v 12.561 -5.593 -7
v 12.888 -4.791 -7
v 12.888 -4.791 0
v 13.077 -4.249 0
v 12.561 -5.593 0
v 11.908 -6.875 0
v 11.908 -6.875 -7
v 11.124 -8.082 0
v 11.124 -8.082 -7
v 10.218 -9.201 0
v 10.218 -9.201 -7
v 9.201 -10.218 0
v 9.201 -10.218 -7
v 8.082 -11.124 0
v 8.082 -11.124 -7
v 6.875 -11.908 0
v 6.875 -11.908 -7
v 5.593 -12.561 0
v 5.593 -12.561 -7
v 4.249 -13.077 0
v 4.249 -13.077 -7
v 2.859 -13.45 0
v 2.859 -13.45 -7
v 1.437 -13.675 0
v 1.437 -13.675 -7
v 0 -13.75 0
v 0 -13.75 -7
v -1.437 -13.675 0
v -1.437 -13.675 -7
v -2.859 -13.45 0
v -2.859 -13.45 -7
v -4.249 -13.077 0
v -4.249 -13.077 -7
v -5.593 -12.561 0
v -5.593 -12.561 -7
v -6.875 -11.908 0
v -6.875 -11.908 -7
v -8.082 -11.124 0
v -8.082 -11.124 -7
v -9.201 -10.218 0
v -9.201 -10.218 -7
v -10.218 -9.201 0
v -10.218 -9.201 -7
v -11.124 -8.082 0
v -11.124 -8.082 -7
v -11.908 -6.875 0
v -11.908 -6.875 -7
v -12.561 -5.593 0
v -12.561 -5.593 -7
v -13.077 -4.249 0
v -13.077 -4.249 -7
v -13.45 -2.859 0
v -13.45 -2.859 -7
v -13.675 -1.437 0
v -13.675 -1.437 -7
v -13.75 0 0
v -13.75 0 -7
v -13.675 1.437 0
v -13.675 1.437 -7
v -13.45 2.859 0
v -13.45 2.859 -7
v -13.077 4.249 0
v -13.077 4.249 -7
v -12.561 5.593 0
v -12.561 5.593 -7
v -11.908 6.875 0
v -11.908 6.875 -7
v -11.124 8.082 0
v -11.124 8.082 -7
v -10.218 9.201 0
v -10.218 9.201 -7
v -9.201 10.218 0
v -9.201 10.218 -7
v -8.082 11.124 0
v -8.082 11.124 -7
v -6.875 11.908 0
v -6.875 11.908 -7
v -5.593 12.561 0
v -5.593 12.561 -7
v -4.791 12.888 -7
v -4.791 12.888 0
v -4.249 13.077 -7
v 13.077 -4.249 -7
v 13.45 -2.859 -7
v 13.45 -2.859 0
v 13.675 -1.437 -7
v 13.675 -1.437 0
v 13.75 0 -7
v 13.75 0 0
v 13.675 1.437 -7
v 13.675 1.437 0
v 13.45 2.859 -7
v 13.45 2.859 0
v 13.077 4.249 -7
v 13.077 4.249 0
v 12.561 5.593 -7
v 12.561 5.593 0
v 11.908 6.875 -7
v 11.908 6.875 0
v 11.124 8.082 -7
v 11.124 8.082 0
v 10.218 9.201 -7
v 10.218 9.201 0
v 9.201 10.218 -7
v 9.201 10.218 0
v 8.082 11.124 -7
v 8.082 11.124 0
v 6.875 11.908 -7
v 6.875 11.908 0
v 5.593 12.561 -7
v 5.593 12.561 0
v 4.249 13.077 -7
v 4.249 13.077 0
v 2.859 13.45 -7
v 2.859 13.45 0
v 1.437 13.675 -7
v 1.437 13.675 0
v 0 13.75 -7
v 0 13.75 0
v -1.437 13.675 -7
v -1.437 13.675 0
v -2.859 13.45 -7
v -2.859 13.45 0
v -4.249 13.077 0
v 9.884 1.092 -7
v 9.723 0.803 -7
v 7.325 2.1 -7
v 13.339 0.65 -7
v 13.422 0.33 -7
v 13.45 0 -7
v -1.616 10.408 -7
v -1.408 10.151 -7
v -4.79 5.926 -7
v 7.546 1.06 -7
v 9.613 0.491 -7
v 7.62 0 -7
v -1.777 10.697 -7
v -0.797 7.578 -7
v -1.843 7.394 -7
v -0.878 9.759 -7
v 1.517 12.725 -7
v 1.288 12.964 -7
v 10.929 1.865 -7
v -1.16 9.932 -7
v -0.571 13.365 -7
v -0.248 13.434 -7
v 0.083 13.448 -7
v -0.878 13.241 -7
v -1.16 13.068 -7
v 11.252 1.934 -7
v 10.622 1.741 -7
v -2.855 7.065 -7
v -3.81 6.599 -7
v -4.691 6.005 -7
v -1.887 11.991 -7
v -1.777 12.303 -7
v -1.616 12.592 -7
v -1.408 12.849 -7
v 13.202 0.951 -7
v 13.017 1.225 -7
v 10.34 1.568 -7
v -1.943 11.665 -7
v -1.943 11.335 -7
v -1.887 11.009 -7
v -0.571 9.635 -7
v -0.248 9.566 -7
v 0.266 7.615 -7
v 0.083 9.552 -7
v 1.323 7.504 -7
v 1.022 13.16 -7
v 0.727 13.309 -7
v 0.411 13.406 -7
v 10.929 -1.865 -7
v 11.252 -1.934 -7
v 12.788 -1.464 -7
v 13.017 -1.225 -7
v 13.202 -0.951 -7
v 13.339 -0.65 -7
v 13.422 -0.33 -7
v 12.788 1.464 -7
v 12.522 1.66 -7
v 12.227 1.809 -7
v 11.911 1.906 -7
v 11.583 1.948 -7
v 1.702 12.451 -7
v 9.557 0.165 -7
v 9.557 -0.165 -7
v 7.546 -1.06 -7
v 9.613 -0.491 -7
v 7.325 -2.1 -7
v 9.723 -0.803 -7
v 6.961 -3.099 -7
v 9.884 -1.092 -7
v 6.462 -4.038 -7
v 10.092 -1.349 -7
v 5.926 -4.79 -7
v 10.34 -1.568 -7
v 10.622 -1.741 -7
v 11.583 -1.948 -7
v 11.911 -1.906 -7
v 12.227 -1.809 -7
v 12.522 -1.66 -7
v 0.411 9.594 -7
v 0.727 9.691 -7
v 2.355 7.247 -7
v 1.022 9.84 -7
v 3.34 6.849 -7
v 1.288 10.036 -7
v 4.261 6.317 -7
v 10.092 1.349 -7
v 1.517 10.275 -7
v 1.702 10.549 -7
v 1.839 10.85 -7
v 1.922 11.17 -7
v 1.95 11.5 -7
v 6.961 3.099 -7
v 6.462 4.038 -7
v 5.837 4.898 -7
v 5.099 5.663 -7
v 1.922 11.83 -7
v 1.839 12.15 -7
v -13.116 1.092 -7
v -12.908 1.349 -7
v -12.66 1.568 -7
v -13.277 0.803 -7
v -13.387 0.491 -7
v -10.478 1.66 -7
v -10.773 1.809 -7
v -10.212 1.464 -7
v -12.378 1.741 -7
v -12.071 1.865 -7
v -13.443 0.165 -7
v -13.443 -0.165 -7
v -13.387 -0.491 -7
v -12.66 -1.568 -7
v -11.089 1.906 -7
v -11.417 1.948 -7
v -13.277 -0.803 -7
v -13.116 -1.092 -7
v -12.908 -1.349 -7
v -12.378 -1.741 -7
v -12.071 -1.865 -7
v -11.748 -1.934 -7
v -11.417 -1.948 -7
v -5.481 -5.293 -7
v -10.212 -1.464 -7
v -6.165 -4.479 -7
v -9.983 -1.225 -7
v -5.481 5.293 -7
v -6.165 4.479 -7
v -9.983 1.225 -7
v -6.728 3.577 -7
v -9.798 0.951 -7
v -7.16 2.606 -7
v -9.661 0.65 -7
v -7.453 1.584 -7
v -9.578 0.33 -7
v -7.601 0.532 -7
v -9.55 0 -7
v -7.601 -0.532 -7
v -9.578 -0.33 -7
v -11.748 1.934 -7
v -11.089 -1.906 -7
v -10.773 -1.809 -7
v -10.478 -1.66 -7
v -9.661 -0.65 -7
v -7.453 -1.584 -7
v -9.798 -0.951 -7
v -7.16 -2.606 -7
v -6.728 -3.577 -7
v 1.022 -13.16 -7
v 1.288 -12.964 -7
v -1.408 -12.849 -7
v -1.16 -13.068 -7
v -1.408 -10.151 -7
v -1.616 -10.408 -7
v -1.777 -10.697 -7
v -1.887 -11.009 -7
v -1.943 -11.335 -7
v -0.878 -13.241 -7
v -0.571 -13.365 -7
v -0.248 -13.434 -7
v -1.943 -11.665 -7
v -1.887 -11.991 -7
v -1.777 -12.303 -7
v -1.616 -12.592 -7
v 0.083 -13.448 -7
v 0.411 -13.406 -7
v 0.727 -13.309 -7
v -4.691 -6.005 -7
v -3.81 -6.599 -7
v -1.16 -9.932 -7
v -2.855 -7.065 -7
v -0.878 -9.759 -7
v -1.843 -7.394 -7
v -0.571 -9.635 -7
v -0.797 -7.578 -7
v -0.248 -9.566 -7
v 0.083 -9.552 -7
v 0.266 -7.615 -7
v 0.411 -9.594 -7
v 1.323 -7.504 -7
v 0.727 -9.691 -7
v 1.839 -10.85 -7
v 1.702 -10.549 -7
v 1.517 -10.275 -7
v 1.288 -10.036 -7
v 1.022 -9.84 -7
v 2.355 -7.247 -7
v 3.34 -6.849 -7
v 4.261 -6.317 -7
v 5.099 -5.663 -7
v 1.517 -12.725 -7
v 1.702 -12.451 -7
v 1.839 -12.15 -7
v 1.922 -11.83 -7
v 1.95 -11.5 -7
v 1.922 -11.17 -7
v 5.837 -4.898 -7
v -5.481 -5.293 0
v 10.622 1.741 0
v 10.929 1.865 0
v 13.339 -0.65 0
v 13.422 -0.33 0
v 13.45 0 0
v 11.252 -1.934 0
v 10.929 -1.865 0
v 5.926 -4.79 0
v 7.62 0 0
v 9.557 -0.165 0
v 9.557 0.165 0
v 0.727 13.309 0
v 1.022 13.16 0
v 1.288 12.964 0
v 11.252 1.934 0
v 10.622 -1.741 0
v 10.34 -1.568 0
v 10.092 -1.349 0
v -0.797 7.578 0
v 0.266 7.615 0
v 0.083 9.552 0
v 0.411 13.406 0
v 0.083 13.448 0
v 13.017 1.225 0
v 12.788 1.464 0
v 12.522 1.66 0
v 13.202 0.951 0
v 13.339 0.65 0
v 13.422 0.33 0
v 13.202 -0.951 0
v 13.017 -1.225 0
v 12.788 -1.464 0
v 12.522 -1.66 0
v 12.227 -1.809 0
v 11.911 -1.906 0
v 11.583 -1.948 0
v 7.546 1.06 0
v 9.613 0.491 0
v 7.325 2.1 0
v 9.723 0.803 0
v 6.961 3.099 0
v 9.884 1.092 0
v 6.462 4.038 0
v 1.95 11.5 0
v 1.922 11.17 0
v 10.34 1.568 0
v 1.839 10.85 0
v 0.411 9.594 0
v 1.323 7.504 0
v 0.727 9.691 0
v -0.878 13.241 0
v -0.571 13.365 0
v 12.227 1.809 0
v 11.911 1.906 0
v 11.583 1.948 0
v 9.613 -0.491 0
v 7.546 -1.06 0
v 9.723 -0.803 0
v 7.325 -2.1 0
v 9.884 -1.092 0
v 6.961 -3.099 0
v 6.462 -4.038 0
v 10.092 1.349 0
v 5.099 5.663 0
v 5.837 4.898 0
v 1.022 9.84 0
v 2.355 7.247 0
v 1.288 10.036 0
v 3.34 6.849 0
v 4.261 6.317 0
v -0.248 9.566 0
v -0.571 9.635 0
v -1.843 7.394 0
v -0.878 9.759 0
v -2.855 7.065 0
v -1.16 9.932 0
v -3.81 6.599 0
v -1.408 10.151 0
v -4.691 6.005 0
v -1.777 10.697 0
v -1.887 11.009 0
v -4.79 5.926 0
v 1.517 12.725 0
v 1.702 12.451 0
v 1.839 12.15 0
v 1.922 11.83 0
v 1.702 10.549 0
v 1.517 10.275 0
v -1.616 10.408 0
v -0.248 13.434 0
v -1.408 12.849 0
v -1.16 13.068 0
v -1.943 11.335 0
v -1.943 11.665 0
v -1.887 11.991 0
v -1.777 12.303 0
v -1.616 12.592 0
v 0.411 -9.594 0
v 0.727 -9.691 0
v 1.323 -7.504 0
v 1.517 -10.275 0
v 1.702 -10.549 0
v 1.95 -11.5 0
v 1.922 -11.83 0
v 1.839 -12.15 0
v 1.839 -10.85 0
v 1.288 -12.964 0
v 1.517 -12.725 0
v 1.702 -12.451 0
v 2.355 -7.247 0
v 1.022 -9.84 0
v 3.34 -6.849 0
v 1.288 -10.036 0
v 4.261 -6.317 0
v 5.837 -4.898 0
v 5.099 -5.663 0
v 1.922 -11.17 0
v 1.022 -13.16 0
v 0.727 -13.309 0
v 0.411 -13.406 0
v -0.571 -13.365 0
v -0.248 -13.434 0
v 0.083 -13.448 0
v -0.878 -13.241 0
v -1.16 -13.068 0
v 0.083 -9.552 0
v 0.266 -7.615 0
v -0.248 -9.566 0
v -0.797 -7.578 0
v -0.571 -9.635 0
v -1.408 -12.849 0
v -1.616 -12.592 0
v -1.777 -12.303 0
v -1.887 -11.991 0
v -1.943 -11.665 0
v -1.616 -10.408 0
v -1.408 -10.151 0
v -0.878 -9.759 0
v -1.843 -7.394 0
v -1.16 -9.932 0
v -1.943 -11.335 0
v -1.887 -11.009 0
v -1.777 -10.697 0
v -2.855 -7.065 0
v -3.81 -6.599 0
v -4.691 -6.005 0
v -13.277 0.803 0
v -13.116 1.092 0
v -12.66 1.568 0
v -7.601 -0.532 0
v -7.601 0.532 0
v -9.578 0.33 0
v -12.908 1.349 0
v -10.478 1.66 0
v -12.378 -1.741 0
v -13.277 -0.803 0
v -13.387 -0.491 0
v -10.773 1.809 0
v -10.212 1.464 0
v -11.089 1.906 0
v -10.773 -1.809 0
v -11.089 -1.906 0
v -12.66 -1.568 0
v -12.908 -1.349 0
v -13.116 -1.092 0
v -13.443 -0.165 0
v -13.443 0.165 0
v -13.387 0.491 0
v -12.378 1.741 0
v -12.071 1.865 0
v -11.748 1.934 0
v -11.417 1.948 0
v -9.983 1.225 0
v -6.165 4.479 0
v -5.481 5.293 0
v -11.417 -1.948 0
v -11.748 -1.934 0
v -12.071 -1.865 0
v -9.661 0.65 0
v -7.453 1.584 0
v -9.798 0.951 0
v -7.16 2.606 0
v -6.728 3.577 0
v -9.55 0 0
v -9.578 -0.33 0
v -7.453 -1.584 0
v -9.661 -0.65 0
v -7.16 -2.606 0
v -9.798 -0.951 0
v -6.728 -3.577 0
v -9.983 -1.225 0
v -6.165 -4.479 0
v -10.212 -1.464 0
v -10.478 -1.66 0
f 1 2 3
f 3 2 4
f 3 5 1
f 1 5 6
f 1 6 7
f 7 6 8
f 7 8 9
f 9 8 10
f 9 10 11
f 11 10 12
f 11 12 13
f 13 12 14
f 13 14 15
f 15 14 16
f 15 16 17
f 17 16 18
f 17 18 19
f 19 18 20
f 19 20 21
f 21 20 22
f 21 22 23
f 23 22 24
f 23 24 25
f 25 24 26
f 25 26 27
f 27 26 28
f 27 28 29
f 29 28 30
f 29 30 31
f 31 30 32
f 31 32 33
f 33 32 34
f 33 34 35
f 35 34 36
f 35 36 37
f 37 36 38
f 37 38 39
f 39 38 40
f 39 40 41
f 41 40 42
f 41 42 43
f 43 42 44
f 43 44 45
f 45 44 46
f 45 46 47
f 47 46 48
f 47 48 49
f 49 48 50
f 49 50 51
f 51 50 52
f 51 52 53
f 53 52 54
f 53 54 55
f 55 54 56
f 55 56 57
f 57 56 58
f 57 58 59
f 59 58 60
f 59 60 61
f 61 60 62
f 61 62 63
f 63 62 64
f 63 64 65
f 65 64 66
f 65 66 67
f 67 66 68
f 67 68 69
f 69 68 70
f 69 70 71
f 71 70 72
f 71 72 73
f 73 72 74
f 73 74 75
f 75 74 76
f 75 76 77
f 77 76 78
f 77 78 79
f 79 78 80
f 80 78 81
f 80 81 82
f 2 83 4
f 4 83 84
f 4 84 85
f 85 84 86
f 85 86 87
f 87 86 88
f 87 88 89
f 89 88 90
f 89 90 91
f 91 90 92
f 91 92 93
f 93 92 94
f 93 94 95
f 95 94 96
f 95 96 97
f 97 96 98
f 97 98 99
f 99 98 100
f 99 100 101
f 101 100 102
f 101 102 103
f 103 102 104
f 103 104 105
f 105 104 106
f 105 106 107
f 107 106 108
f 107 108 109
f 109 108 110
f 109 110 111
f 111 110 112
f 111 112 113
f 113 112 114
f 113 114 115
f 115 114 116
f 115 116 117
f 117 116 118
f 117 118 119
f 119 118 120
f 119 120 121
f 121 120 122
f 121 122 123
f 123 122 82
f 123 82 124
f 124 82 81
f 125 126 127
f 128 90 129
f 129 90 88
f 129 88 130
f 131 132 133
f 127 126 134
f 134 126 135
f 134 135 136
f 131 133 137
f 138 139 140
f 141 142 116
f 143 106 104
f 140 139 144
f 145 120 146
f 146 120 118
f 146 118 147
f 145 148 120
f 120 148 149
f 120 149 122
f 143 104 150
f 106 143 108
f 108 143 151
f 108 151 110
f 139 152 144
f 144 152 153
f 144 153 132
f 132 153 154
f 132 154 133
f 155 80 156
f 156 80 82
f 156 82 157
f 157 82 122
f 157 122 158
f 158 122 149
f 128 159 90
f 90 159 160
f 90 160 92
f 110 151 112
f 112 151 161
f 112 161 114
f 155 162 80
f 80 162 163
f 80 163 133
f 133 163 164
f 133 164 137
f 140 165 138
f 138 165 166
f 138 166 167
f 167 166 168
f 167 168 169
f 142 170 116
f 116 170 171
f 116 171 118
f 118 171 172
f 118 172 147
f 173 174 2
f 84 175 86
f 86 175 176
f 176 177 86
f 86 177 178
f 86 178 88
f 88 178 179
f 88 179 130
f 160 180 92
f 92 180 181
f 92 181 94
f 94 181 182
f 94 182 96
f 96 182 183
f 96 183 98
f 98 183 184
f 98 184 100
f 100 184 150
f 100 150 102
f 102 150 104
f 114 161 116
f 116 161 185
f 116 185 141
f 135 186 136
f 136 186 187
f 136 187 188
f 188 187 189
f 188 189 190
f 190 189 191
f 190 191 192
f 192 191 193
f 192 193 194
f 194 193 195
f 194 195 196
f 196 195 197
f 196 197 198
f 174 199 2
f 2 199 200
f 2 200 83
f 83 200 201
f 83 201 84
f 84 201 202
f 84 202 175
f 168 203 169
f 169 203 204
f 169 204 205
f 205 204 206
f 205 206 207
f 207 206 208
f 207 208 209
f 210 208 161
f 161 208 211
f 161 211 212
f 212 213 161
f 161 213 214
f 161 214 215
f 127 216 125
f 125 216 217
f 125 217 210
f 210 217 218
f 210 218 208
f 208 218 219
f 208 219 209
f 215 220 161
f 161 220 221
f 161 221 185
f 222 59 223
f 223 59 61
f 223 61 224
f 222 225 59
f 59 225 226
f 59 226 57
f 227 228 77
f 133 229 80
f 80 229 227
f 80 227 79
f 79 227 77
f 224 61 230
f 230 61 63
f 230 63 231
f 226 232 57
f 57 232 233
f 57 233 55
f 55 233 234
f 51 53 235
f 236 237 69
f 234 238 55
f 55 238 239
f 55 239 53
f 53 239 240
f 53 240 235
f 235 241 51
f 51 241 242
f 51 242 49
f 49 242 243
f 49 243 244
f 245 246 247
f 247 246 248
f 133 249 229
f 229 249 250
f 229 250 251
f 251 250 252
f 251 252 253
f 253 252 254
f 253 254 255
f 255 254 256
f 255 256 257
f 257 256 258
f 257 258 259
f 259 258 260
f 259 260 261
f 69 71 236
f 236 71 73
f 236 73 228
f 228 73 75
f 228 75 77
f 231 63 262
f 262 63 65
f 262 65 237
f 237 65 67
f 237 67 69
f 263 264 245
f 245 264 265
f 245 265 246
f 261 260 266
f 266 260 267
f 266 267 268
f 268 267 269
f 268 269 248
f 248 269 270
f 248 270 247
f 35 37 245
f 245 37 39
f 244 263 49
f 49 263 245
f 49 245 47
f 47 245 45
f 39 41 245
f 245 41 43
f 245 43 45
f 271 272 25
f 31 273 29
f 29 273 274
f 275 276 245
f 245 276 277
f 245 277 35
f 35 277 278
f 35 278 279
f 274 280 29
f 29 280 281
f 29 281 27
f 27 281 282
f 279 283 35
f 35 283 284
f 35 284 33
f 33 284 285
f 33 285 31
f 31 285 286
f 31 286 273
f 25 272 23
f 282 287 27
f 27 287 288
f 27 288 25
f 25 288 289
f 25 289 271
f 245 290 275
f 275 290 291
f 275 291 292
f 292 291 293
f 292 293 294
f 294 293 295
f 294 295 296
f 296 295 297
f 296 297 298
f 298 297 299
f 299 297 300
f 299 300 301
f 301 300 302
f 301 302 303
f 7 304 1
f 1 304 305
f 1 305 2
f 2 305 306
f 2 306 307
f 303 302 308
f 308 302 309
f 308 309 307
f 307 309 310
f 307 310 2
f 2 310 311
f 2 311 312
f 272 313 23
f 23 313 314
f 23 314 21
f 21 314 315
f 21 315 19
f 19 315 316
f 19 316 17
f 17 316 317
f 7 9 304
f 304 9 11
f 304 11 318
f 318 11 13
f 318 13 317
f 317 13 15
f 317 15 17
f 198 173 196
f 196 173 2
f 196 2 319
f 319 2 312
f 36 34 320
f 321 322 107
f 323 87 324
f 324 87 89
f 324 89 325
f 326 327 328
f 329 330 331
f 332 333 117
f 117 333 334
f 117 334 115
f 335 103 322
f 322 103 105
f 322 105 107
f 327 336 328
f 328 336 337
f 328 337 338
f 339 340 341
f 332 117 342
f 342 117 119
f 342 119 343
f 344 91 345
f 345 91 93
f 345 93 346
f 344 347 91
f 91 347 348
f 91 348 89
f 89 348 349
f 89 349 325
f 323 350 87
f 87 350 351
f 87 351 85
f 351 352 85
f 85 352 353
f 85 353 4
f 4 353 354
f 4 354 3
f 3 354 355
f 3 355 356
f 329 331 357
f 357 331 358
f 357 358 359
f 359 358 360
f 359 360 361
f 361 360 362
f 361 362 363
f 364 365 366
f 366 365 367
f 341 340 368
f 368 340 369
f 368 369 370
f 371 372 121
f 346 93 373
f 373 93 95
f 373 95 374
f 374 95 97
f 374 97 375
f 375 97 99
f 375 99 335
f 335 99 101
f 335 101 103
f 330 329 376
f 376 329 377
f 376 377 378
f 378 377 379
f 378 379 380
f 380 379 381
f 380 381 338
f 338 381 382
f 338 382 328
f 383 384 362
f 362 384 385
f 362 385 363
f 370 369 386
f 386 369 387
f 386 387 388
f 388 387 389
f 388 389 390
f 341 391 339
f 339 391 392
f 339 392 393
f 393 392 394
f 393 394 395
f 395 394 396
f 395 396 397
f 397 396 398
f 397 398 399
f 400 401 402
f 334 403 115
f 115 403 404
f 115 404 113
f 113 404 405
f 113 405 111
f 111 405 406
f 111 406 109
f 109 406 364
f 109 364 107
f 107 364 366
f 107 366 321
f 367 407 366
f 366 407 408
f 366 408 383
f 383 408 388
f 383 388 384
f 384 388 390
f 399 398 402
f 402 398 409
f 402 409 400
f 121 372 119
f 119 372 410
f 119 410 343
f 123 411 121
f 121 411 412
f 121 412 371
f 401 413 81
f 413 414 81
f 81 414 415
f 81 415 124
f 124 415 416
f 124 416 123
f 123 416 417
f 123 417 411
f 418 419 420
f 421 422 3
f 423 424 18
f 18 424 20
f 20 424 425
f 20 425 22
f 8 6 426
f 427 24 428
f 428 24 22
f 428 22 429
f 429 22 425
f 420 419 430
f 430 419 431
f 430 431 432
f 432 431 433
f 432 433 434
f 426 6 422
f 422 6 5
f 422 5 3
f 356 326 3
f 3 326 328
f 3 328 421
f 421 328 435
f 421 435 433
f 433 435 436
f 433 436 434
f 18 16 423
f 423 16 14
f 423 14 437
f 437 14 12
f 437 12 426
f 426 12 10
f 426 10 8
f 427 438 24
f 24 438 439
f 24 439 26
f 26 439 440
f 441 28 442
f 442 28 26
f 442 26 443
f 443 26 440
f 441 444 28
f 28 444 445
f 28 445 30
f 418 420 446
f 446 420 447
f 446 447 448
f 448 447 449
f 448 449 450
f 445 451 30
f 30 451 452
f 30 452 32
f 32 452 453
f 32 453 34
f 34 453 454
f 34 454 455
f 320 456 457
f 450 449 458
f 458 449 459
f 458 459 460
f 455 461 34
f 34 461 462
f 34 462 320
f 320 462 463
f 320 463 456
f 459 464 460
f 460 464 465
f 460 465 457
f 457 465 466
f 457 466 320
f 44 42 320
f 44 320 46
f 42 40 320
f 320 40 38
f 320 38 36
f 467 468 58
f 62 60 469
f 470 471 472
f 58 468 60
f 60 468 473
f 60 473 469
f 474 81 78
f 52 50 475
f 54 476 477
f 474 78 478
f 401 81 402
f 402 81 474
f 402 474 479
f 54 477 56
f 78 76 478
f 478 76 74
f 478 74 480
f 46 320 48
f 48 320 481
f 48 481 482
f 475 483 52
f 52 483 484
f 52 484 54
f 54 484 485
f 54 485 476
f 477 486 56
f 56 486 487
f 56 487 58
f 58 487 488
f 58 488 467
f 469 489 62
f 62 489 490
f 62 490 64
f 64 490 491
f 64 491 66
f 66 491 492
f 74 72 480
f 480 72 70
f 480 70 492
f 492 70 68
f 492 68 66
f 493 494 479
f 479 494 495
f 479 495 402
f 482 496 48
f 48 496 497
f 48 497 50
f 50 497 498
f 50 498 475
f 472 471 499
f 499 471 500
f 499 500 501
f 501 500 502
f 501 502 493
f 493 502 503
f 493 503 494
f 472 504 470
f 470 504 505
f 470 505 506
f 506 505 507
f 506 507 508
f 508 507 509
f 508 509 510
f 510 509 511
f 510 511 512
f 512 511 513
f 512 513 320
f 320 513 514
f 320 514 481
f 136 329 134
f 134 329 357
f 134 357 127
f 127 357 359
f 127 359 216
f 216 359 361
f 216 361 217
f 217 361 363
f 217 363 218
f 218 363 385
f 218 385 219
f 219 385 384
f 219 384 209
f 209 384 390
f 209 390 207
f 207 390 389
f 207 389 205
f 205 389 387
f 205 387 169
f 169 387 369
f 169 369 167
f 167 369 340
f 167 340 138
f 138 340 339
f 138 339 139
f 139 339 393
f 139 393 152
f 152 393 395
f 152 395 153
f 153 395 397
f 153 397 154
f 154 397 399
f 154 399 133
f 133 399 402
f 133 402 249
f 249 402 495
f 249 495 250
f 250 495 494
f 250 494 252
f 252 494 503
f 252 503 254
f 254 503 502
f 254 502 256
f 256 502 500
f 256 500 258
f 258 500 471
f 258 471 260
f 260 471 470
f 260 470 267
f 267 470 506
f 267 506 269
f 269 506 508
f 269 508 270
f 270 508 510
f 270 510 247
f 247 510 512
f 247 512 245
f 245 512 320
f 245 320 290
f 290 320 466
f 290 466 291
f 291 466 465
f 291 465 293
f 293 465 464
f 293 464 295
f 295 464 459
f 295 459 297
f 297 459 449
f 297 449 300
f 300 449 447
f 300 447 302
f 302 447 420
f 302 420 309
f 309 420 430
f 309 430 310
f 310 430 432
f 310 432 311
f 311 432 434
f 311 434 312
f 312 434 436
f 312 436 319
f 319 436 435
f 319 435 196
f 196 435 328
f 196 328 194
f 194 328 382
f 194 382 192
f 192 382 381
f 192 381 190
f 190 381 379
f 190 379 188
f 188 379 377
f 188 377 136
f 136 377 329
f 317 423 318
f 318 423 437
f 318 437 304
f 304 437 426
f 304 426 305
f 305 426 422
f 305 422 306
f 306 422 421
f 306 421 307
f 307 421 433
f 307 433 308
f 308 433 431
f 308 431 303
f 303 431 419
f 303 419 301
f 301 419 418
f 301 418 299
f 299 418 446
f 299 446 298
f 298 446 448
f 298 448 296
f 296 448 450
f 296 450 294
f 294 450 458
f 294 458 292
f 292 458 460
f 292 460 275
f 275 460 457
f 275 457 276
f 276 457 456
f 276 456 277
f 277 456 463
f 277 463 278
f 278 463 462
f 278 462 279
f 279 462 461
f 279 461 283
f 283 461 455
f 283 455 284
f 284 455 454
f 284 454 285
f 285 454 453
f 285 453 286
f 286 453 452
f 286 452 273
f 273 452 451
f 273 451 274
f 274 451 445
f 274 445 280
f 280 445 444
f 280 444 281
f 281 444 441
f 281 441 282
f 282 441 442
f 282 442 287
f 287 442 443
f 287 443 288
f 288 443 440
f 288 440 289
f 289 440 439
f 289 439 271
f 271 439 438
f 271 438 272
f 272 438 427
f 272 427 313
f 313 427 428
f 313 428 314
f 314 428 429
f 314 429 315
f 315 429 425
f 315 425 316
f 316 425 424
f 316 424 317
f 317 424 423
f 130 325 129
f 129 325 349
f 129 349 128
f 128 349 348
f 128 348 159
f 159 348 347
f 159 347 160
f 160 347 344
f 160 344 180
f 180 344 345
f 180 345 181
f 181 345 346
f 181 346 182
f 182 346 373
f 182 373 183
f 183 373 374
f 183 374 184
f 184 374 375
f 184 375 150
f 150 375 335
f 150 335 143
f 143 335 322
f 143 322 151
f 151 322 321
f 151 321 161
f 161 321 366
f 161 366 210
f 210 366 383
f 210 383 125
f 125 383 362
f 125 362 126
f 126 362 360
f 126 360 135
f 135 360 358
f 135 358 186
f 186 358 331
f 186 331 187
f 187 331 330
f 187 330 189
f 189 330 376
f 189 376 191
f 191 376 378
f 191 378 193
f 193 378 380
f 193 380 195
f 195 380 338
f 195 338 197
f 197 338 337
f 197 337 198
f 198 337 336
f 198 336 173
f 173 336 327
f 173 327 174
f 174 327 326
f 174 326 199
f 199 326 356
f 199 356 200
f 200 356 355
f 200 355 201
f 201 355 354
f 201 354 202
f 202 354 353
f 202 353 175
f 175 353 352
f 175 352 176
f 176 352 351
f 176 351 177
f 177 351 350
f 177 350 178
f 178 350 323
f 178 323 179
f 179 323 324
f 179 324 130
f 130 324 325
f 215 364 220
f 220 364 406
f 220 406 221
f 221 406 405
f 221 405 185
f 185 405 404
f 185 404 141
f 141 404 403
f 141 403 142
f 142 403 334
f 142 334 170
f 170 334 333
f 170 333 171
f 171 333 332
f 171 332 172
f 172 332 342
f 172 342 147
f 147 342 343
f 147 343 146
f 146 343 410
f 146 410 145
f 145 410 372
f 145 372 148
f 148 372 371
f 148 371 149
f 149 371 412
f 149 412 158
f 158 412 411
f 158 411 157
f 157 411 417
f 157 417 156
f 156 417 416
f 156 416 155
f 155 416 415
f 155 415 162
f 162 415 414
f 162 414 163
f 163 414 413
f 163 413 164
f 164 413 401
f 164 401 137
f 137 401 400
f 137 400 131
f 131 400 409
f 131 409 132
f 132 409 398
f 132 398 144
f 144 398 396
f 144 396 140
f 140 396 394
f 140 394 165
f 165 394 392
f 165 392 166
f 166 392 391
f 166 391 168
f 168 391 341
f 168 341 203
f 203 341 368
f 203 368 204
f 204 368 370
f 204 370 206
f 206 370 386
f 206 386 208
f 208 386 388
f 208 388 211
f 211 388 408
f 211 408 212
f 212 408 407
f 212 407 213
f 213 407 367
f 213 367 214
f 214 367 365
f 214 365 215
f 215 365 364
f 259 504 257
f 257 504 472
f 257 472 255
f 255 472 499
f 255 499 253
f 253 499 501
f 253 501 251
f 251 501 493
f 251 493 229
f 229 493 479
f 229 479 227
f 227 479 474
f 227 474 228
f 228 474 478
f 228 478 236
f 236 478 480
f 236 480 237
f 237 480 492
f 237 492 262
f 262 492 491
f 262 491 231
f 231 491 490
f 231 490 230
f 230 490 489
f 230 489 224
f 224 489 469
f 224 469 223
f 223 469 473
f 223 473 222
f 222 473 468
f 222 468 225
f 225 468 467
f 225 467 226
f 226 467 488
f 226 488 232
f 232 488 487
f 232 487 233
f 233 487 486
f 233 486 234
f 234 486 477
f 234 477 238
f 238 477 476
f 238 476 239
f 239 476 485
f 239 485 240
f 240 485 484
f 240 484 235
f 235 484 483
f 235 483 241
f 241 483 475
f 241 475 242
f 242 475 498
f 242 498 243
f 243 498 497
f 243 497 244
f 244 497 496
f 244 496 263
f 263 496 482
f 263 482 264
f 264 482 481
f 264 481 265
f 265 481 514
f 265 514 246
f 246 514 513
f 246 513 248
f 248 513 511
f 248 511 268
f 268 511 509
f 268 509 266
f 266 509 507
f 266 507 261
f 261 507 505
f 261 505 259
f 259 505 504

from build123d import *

# Parameters (mm, degrees)
SKETCH1_R           = 13.75
SKETCH1_R_2         = 7.62
BOSS_EXTRUDE1_DEPTH = 7
CUT_EXTRUDE1_REACH  = 9
SKETCH3_R           = 1.9499961


with BuildPart() as part:
    # Sketch1 → Boss-Extrude1 (new body)
    with BuildSketch(Plane.XY):
        Circle(SKETCH1_R)
        Circle(SKETCH1_R_2, mode=Mode.SUBTRACT)
    extrude(amount=-BOSS_EXTRUDE1_DEPTH)

    # Sketch3 → Cut-Extrude1 (cut, up to next)
    with BuildSketch(Plane.XY, mode=Mode.PRIVATE) as cut_extrude1_sk1:
        with Locations((-11.49999986, 0)):
            Circle(SKETCH3_R)
    cut_extrude1_tool1 = extrude(cut_extrude1_sk1.sketch, amount=-CUT_EXTRUDE1_REACH, mode=Mode.PRIVATE) & part.part
    add(cut_extrude1_tool1.solids().sort_by_distance((-11.5, 0, 0))[0], mode=Mode.SUBTRACT)
    # Sketch3 → Cut-Extrude1 (cut, up to next)
    with BuildSketch(Plane.XY, mode=Mode.PRIVATE) as cut_extrude1_sk2:
        with Locations((0, 11.49999986)):
            Circle(SKETCH3_R)
    cut_extrude1_tool2 = extrude(cut_extrude1_sk2.sketch, amount=-CUT_EXTRUDE1_REACH, mode=Mode.PRIVATE) & part.part
    add(cut_extrude1_tool2.solids().sort_by_distance((0, 11.5, 0))[0], mode=Mode.SUBTRACT)
    # Sketch3 → Cut-Extrude1 (cut, up to next)
    with BuildSketch(Plane.XY, mode=Mode.PRIVATE) as cut_extrude1_sk3:
        with Locations((11.49999986, 0)):
            Circle(SKETCH3_R)
    cut_extrude1_tool3 = extrude(cut_extrude1_sk3.sketch, amount=-CUT_EXTRUDE1_REACH, mode=Mode.PRIVATE) & part.part
    add(cut_extrude1_tool3.solids().sort_by_distance((11.5, 0, 0))[0], mode=Mode.SUBTRACT)
    # Sketch3 → Cut-Extrude1 (cut, up to next)
    with BuildSketch(Plane.XY, mode=Mode.PRIVATE) as cut_extrude1_sk4:
        with Locations((0, -11.49999986)):
            Circle(SKETCH3_R)
    cut_extrude1_tool4 = extrude(cut_extrude1_sk4.sketch, amount=-CUT_EXTRUDE1_REACH, mode=Mode.PRIVATE) & part.part
    add(cut_extrude1_tool4.solids().sort_by_distance((0, -11.5, 0))[0], mode=Mode.SUBTRACT)


solid = part.part
